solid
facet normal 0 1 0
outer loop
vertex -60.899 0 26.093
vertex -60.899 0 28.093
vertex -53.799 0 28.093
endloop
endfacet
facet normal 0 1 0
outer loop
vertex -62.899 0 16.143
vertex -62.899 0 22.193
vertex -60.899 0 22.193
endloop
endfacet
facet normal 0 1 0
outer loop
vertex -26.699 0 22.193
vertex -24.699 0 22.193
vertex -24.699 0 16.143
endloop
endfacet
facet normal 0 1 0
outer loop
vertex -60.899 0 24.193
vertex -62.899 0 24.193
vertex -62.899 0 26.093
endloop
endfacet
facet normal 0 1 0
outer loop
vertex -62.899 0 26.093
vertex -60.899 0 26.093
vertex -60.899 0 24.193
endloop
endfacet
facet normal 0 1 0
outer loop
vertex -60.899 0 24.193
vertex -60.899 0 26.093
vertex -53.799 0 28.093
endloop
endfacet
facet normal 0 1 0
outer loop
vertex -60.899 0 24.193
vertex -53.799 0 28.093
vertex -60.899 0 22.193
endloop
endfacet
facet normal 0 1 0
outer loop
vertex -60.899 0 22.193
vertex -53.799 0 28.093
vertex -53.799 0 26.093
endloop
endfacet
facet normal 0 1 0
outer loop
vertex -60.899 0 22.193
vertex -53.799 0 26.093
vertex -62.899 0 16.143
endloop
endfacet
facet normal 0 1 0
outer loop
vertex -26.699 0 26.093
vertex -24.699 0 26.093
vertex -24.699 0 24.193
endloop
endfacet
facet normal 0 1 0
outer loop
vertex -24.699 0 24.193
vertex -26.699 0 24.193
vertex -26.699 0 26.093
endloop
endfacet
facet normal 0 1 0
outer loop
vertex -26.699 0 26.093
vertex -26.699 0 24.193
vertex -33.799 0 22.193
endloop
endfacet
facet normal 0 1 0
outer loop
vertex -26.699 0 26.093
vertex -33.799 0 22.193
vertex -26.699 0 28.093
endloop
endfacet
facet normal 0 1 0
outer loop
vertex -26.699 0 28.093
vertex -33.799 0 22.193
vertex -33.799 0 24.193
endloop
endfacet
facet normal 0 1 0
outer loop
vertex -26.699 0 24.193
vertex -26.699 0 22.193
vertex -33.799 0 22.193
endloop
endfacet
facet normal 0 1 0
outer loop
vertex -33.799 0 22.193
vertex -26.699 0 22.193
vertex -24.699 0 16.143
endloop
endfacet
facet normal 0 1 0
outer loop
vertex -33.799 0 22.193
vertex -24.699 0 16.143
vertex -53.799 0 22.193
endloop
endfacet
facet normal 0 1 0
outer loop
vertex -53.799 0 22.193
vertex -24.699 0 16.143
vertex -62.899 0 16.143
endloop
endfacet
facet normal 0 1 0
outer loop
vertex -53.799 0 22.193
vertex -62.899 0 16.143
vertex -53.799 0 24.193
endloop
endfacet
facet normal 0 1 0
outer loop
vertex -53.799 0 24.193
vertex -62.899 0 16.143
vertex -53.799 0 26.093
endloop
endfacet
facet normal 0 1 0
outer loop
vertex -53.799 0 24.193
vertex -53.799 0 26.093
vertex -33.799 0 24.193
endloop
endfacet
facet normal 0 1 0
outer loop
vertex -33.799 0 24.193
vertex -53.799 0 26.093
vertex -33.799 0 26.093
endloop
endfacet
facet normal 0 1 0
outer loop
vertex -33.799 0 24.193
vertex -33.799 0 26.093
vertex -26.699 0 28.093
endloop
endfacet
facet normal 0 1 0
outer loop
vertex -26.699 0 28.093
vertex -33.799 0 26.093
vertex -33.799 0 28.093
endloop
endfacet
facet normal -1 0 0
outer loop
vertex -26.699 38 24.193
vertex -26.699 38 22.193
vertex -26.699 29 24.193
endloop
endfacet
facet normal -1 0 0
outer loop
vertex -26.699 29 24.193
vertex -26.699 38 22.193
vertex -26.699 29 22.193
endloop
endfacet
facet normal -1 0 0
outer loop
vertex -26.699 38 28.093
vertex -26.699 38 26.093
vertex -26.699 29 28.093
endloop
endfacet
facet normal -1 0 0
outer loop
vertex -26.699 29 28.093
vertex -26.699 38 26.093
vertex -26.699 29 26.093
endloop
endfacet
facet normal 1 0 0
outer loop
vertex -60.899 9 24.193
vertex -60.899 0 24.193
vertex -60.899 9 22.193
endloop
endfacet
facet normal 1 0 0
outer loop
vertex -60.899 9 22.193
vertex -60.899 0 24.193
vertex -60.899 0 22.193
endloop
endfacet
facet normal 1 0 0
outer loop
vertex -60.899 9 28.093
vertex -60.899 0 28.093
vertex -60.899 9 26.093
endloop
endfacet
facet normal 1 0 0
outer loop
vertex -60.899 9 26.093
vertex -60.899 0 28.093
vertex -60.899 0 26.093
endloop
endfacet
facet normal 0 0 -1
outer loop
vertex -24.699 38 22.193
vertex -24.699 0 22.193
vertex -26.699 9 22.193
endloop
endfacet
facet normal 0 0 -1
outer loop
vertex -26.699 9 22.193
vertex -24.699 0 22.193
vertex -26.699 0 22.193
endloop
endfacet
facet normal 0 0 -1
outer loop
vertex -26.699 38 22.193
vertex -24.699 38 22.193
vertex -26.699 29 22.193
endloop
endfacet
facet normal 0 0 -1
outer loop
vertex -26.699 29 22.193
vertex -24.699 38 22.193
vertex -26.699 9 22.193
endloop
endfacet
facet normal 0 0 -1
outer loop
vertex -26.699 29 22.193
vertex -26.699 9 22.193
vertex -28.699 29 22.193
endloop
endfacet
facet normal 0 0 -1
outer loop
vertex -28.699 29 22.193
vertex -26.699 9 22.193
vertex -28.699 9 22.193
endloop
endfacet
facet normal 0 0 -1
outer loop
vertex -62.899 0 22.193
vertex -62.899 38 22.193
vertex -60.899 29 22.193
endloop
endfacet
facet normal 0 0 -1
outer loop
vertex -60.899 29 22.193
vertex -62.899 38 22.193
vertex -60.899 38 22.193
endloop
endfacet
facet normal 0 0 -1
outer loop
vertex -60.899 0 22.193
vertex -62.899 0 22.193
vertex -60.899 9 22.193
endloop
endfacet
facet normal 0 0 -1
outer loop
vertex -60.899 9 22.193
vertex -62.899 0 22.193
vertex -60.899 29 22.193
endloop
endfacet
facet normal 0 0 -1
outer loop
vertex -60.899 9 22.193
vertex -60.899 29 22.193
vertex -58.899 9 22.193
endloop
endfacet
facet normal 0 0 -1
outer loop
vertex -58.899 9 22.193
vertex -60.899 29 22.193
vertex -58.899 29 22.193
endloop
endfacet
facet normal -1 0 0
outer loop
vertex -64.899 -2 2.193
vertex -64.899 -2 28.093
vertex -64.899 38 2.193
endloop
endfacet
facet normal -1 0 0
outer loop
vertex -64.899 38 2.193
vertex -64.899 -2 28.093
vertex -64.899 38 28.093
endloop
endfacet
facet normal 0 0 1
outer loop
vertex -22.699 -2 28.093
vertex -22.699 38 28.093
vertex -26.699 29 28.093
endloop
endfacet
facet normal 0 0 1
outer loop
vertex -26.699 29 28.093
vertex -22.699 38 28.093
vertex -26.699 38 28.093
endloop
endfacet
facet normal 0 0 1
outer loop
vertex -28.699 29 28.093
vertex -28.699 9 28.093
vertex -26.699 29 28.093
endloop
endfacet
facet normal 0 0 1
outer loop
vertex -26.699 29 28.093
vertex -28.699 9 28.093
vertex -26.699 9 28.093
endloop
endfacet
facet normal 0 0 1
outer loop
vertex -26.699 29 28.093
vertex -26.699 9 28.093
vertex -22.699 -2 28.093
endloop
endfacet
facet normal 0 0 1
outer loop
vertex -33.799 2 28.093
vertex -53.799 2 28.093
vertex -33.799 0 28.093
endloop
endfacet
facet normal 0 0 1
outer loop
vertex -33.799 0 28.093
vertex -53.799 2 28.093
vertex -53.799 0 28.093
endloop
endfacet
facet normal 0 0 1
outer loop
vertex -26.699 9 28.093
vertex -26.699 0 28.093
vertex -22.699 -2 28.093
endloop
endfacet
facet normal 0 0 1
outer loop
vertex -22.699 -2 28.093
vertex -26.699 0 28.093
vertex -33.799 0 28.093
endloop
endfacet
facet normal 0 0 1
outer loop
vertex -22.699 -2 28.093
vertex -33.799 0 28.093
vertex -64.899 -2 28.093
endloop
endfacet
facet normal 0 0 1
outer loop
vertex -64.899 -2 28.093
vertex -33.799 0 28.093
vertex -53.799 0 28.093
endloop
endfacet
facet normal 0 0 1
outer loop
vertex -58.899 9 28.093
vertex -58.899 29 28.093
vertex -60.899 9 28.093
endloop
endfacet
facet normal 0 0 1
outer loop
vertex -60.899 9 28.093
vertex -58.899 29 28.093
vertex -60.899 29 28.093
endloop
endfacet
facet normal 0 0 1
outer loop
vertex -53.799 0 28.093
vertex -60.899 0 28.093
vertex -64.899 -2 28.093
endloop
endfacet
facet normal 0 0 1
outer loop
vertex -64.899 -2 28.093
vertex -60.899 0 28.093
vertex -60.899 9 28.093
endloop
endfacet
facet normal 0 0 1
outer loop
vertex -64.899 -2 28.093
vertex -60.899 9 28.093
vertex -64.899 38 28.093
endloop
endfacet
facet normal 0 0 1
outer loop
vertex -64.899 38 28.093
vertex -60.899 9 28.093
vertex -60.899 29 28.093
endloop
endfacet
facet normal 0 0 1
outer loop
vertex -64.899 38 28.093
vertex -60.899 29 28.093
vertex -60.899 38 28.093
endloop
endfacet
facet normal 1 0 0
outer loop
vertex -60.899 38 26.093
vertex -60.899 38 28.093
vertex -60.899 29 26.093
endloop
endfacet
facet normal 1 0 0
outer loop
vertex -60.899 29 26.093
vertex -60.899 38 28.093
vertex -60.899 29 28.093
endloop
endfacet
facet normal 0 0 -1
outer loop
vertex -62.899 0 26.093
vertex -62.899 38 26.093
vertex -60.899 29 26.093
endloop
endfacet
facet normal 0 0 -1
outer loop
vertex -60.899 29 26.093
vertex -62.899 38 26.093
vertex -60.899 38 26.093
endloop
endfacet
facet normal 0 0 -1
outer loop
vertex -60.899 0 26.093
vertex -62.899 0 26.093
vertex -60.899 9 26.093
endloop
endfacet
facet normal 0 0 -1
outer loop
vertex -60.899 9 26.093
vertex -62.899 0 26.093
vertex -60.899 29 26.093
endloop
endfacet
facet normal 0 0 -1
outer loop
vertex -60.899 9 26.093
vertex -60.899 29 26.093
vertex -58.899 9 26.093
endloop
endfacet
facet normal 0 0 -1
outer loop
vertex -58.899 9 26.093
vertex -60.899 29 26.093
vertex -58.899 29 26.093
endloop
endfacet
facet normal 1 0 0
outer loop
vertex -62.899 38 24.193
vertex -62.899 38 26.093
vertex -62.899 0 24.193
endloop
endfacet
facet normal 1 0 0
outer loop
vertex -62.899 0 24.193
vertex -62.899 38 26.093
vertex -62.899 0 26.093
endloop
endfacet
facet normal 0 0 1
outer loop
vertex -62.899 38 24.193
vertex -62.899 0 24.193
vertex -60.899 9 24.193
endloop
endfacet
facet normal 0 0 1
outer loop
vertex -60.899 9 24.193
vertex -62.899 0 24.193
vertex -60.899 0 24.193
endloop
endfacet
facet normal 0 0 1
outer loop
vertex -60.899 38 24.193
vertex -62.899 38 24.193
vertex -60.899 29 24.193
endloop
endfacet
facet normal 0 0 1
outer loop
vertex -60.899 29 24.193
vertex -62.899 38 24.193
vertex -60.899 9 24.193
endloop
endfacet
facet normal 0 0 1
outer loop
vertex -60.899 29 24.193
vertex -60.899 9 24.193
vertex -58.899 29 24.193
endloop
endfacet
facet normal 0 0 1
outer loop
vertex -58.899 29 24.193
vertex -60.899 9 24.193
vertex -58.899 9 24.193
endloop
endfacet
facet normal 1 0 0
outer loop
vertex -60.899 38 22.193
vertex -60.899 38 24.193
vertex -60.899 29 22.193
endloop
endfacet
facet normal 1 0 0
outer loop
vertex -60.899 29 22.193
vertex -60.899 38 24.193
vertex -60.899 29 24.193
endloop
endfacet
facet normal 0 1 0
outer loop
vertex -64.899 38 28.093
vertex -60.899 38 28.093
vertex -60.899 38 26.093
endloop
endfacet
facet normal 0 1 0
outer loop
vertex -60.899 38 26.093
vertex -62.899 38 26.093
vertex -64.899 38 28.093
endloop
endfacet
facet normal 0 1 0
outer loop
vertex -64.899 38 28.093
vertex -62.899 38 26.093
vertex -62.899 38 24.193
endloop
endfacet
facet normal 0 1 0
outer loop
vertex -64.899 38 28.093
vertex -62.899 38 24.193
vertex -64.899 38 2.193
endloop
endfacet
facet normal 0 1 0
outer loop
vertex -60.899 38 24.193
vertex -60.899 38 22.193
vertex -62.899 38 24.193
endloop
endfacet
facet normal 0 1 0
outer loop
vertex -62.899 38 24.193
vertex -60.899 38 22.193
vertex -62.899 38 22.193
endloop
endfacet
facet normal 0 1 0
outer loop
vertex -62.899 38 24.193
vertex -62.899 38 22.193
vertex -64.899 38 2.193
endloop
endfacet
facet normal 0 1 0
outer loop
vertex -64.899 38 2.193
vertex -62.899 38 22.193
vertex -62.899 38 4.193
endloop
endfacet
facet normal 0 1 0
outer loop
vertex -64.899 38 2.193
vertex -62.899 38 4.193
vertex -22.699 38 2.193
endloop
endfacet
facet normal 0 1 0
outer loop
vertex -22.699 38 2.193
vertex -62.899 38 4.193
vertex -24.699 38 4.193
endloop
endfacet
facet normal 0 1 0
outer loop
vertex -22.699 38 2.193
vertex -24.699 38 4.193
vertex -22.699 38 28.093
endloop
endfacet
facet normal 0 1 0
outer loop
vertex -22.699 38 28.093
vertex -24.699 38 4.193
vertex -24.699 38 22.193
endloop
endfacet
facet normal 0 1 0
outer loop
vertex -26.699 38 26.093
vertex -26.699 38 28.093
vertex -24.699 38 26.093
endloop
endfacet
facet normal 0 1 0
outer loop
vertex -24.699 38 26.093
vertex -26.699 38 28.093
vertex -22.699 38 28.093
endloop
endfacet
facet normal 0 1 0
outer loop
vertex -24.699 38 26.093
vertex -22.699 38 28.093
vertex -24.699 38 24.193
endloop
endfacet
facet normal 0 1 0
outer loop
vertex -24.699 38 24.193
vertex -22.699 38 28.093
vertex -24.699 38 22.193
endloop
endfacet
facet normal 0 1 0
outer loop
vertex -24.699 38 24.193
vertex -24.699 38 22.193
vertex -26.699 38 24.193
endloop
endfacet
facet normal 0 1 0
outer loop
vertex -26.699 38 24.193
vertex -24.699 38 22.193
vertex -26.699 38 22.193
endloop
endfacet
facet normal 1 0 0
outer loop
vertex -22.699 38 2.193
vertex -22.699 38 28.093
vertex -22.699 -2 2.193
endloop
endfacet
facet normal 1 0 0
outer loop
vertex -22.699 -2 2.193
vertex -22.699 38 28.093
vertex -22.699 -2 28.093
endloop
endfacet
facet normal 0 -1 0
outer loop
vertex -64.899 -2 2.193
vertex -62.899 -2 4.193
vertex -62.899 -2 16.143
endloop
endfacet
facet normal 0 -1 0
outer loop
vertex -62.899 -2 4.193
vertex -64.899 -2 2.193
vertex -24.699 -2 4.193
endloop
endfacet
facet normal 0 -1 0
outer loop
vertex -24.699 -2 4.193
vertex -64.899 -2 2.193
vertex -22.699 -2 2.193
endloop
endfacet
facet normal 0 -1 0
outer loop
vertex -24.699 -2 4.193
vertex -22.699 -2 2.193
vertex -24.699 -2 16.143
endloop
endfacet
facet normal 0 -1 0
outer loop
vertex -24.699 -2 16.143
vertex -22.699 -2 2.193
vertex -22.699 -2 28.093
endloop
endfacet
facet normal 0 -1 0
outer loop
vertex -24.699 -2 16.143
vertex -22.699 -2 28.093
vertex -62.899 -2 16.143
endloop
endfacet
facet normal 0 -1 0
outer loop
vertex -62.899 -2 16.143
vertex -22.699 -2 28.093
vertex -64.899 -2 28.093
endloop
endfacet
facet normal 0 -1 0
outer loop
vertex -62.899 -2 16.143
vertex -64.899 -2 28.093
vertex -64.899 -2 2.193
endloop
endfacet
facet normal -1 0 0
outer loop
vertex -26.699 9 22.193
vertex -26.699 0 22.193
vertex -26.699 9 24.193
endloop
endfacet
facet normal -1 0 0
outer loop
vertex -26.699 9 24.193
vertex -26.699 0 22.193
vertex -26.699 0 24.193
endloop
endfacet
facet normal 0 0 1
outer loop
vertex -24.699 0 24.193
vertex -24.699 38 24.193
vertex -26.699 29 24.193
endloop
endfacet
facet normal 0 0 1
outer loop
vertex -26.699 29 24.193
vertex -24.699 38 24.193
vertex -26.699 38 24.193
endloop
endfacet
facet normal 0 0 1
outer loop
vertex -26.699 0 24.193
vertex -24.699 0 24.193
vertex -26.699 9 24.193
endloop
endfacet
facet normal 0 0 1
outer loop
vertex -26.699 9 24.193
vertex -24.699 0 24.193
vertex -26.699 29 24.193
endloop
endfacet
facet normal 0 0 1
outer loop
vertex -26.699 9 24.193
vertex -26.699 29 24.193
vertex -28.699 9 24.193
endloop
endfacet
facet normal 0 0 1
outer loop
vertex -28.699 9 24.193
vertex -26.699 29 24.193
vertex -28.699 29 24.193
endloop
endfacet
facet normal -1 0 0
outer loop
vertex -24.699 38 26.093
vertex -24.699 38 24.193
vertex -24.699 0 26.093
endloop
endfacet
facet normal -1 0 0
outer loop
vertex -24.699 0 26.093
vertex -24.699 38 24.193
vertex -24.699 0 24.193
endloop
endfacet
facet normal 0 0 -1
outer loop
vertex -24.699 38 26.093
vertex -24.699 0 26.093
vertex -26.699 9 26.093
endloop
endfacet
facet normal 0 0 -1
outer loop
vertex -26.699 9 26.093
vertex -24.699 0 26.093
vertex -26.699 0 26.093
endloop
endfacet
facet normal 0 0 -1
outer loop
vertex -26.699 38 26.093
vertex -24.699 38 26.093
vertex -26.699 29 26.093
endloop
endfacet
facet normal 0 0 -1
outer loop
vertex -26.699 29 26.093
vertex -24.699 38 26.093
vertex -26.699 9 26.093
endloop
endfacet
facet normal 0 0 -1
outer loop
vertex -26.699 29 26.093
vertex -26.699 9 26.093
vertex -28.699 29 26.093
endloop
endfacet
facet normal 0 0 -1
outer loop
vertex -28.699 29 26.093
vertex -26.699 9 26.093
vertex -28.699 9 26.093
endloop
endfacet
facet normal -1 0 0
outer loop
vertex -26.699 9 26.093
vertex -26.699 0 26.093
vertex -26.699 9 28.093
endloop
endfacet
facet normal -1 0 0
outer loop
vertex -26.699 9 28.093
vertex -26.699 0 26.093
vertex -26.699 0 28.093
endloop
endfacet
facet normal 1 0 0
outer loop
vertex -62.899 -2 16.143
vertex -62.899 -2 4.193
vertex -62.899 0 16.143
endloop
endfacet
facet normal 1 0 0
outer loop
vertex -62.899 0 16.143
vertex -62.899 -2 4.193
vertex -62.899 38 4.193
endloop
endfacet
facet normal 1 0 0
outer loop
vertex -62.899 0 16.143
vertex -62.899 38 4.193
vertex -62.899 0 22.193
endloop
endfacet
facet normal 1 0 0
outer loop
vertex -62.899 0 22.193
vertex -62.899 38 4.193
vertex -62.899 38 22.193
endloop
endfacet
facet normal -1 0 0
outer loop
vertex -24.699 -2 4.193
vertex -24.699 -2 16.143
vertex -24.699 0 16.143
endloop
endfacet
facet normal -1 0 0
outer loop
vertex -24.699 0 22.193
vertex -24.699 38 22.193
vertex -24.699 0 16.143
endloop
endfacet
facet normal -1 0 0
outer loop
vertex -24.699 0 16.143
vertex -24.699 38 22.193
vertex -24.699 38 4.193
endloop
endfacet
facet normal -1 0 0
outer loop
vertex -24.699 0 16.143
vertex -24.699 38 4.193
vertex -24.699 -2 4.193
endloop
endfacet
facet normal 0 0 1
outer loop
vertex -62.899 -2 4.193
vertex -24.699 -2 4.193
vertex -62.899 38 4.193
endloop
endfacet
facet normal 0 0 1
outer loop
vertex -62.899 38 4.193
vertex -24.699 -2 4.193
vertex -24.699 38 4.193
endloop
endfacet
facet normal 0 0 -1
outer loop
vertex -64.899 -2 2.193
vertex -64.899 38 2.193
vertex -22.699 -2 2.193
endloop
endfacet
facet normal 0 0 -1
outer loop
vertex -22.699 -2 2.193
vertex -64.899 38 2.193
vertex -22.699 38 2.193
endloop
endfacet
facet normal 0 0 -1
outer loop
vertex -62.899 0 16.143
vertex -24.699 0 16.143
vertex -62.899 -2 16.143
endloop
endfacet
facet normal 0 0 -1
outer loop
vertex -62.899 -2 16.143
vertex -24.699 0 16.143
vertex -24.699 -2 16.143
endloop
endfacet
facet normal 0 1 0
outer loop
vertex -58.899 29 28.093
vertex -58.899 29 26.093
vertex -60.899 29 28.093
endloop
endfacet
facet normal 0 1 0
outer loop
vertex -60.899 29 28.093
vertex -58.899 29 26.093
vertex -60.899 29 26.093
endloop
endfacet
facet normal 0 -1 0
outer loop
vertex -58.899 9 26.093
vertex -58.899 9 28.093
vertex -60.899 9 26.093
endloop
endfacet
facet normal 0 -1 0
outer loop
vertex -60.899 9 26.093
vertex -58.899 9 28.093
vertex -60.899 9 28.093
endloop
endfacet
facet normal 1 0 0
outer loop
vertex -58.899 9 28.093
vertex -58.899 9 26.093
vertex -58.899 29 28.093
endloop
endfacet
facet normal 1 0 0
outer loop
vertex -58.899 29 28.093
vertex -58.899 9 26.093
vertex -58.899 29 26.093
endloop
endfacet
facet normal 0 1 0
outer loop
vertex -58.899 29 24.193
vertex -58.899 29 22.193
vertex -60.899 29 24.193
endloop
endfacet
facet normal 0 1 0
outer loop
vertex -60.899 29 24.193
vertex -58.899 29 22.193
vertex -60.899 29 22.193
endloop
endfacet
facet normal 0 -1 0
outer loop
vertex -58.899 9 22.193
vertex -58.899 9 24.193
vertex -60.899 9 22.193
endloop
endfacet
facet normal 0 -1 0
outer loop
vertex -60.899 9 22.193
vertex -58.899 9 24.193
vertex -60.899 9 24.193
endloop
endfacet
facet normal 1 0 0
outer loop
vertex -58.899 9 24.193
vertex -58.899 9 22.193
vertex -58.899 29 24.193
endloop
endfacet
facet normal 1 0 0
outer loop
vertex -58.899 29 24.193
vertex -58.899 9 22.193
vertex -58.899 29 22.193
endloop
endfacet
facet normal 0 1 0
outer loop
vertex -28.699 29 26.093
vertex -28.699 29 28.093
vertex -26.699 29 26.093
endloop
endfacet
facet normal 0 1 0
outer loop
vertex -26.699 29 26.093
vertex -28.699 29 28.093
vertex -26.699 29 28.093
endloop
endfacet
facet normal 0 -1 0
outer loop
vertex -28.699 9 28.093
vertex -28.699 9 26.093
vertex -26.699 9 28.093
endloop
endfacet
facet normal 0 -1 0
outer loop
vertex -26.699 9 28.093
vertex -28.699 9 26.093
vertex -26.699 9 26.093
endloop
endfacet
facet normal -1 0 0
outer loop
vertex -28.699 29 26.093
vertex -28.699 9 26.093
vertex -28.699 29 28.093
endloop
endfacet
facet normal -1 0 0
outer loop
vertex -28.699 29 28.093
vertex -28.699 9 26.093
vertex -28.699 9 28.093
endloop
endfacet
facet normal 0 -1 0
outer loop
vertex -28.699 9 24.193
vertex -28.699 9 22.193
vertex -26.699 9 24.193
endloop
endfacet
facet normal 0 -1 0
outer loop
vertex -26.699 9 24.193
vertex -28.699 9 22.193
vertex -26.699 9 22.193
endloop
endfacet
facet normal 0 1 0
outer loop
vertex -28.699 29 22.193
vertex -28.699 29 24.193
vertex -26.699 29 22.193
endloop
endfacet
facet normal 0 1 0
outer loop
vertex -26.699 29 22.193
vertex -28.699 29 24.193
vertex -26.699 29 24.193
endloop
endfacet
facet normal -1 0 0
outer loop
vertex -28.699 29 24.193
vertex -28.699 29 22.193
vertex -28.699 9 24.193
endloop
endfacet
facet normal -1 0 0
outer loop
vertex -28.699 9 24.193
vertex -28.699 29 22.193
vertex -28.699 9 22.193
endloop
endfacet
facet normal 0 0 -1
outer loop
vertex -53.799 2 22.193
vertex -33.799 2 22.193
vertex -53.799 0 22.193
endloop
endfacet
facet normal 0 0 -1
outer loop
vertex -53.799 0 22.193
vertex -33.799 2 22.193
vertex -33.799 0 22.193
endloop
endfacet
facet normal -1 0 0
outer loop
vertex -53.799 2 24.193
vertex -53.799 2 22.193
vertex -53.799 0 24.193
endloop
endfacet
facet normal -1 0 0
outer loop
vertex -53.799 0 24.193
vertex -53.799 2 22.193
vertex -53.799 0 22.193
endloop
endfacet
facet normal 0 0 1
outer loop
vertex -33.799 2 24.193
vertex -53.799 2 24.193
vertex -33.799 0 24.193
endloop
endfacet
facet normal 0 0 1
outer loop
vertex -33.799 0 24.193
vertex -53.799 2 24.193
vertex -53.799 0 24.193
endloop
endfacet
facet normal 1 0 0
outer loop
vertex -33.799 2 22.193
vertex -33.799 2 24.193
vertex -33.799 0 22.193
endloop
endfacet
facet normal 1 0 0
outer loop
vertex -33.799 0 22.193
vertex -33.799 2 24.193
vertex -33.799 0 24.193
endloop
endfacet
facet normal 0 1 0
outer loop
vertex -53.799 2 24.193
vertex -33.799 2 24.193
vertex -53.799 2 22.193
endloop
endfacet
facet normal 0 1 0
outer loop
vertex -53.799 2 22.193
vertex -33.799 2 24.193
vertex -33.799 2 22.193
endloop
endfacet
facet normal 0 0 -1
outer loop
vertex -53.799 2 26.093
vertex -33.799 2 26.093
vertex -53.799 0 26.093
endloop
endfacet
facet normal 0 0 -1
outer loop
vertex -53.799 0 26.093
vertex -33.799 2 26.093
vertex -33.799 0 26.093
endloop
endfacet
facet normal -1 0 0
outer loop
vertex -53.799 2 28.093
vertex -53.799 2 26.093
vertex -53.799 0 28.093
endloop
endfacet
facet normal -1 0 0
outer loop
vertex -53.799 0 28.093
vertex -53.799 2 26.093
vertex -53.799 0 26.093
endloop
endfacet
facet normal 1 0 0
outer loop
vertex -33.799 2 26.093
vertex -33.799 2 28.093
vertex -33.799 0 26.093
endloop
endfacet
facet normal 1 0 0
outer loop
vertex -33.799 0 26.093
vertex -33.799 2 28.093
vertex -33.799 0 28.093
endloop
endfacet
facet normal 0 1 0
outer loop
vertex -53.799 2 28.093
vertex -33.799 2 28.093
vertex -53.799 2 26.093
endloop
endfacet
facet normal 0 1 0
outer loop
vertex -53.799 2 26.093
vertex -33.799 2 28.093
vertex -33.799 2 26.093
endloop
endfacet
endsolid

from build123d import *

# Parameters (mm, degrees)
BOSS_EXTRUDE1_DEPTH   = 38
BOSS_EXTRUDE1_2_DEPTH = 38
SKETCH2_W             = 42.2
SKETCH2_H             = 5.9
BOSS_EXTRUDE2_DEPTH   = 2
BOSS_EXTRUDE3_DEPTH   = 18
SKETCH4_W             = 42.2
SKETCH4_H             = 40
BOSS_EXTRUDE4_DEPTH   = 2
SKETCH5_W             = 38.2
SKETCH5_H             = 11.95
CUT_EXTRUDE1_DEPTH    = 81.281509747
SKETCH6_W             = 2
SKETCH6_H             = 10
BOSS_EXTRUDE5_DEPTH   = 2
SKETCH7_W             = 2
SKETCH7_H             = 10
BOSS_EXTRUDE6_DEPTH   = 2
SKETCH8_W             = 10
SKETCH8_H             = 2
BOSS_EXTRUDE7_DEPTH   = 2


with BuildPart() as part:
    # Sketch1 → Boss-Extrude1 (new body)
    with BuildSketch(Plane(origin=(0, 0, 0), x_dir=(1, 0, 0), z_dir=(0, 1, 0))):
        Polygon((-62.898983402, -26.09346473), (-62.898983402, -24.19346473), (-60.898983402, -24.19346473), (-60.898983402, -22.19346473), (-64.898983402, -22.19346473), (-64.898983402, -28.09346473), (-60.898983402, -28.09346473), (-60.898983402, -26.09346473), align=None)
    extrude(amount=BOSS_EXTRUDE1_DEPTH)



with BuildPart() as body_2:
    # Sketch1 → Boss-Extrude1 2 (new body)
    with BuildSketch(Plane(origin=(0, 0, 0), x_dir=(1, 0, 0), z_dir=(0, 1, 0))):
        Polygon((-26.698983402, -22.19346473), (-26.698983402, -24.19346473), (-24.698983402, -24.19346473), (-24.698983402, -26.09346473), (-26.698983402, -26.09346473), (-26.698983402, -28.09346473), (-22.698983402, -28.09346473), (-22.698983402, -22.19346473), align=None)
    extrude(amount=BOSS_EXTRUDE1_2_DEPTH)


with BuildPart() as part_1:
    add(part.part)

    add(body_2.part)  # Boss-Extrude2 merges body 2
    # Sketch2 → Boss-Extrude2 (add)
    with BuildSketch(Plane(origin=(0, 0, 0), x_dir=(1, 0, 0), z_dir=(0, 1, 0))):
        with Locations((-43.798983402, -25.14346473)):
            Rectangle(SKETCH2_W, SKETCH2_H)
    extrude(amount=-BOSS_EXTRUDE2_DEPTH)

    # Sketch3 → Boss-Extrude3 (add)
    with BuildSketch(Plane(origin=(0, 0, 22.19346473), x_dir=(-1, 0, 0), z_dir=(0, 0, -1))):
        Polygon((24.698983402, 38), (22.698983402, 38), (22.698983402, -2), (64.898983402, -2), (64.898983402, 38), (62.898983402, 38), (62.898983402, 0), (24.698983402, 0), align=None)
    extrude(amount=BOSS_EXTRUDE3_DEPTH)

    # Sketch4 → Boss-Extrude4 (add)
    with BuildSketch(Plane(origin=(0, 0, 4.19346473), x_dir=(-1, 0, 0), z_dir=(0, 0, -1))):
        with Locations((43.798983402, 18)):
            Rectangle(SKETCH4_W, SKETCH4_H)
    extrude(amount=BOSS_EXTRUDE4_DEPTH)

    # Sketch5 → Cut-Extrude1 (cut, through all)
    with BuildSketch(Plane(origin=(0, 0, 0), x_dir=(1, 0, 0), z_dir=(0, 1, 0))):
        with Locations((-43.798983402, -10.16846473)):
            Rectangle(SKETCH5_W, SKETCH5_H)
    extrude(amount=-CUT_EXTRUDE1_DEPTH, mode=Mode.SUBTRACT)

    # Sketch6 → Boss-Extrude5 (add)
    with BuildSketch(Plane(origin=(-60.898983402, 0, 0), x_dir=(0, 0, -1), z_dir=(1, 0, 0))):
        with Locations((-27.09346473, 24)):
            Rectangle(SKETCH6_W, SKETCH6_H)
        with Locations((-23.19346473, 24)):
            Rectangle(SKETCH6_W, SKETCH6_H)
        with Locations((-27.09346473, 14)):
            Rectangle(SKETCH6_W, SKETCH6_H)
        with Locations((-23.19346473, 14)):
            Rectangle(SKETCH6_W, SKETCH6_H)
    extrude(amount=BOSS_EXTRUDE5_DEPTH)

    # Sketch7 → Boss-Extrude6 (add)
    with BuildSketch(Plane.ZY.offset(26.698983402)):
        with Locations((27.09346473, 24)):
            Rectangle(SKETCH7_W, SKETCH7_H)
        with Locations((27.09346473, 14)):
            Rectangle(SKETCH7_W, SKETCH7_H)
        with Locations((23.19346473, 14)):
            Rectangle(SKETCH7_W, SKETCH7_H)
        with Locations((23.19346473, 24)):
            Rectangle(SKETCH7_W, SKETCH7_H)
    extrude(amount=BOSS_EXTRUDE6_DEPTH)

    # Sketch8 → Boss-Extrude7 (add)
    with BuildSketch(Plane(origin=(0, 0, 0), x_dir=(1, 0, 0), z_dir=(0, 1, 0))):
        with Locations((-48.798983402, -23.19346473)):
            Rectangle(SKETCH8_W, SKETCH8_H)
        with Locations((-38.798983402, -23.19346473)):
            Rectangle(SKETCH8_W, SKETCH8_H)
        with Locations((-48.798983402, -27.09346473)):
            Rectangle(SKETCH8_W, SKETCH8_H)
        with Locations((-38.798983402, -27.09346473)):
            Rectangle(SKETCH8_W, SKETCH8_H)
    extrude(amount=BOSS_EXTRUDE7_DEPTH)


solid = part_1.part
